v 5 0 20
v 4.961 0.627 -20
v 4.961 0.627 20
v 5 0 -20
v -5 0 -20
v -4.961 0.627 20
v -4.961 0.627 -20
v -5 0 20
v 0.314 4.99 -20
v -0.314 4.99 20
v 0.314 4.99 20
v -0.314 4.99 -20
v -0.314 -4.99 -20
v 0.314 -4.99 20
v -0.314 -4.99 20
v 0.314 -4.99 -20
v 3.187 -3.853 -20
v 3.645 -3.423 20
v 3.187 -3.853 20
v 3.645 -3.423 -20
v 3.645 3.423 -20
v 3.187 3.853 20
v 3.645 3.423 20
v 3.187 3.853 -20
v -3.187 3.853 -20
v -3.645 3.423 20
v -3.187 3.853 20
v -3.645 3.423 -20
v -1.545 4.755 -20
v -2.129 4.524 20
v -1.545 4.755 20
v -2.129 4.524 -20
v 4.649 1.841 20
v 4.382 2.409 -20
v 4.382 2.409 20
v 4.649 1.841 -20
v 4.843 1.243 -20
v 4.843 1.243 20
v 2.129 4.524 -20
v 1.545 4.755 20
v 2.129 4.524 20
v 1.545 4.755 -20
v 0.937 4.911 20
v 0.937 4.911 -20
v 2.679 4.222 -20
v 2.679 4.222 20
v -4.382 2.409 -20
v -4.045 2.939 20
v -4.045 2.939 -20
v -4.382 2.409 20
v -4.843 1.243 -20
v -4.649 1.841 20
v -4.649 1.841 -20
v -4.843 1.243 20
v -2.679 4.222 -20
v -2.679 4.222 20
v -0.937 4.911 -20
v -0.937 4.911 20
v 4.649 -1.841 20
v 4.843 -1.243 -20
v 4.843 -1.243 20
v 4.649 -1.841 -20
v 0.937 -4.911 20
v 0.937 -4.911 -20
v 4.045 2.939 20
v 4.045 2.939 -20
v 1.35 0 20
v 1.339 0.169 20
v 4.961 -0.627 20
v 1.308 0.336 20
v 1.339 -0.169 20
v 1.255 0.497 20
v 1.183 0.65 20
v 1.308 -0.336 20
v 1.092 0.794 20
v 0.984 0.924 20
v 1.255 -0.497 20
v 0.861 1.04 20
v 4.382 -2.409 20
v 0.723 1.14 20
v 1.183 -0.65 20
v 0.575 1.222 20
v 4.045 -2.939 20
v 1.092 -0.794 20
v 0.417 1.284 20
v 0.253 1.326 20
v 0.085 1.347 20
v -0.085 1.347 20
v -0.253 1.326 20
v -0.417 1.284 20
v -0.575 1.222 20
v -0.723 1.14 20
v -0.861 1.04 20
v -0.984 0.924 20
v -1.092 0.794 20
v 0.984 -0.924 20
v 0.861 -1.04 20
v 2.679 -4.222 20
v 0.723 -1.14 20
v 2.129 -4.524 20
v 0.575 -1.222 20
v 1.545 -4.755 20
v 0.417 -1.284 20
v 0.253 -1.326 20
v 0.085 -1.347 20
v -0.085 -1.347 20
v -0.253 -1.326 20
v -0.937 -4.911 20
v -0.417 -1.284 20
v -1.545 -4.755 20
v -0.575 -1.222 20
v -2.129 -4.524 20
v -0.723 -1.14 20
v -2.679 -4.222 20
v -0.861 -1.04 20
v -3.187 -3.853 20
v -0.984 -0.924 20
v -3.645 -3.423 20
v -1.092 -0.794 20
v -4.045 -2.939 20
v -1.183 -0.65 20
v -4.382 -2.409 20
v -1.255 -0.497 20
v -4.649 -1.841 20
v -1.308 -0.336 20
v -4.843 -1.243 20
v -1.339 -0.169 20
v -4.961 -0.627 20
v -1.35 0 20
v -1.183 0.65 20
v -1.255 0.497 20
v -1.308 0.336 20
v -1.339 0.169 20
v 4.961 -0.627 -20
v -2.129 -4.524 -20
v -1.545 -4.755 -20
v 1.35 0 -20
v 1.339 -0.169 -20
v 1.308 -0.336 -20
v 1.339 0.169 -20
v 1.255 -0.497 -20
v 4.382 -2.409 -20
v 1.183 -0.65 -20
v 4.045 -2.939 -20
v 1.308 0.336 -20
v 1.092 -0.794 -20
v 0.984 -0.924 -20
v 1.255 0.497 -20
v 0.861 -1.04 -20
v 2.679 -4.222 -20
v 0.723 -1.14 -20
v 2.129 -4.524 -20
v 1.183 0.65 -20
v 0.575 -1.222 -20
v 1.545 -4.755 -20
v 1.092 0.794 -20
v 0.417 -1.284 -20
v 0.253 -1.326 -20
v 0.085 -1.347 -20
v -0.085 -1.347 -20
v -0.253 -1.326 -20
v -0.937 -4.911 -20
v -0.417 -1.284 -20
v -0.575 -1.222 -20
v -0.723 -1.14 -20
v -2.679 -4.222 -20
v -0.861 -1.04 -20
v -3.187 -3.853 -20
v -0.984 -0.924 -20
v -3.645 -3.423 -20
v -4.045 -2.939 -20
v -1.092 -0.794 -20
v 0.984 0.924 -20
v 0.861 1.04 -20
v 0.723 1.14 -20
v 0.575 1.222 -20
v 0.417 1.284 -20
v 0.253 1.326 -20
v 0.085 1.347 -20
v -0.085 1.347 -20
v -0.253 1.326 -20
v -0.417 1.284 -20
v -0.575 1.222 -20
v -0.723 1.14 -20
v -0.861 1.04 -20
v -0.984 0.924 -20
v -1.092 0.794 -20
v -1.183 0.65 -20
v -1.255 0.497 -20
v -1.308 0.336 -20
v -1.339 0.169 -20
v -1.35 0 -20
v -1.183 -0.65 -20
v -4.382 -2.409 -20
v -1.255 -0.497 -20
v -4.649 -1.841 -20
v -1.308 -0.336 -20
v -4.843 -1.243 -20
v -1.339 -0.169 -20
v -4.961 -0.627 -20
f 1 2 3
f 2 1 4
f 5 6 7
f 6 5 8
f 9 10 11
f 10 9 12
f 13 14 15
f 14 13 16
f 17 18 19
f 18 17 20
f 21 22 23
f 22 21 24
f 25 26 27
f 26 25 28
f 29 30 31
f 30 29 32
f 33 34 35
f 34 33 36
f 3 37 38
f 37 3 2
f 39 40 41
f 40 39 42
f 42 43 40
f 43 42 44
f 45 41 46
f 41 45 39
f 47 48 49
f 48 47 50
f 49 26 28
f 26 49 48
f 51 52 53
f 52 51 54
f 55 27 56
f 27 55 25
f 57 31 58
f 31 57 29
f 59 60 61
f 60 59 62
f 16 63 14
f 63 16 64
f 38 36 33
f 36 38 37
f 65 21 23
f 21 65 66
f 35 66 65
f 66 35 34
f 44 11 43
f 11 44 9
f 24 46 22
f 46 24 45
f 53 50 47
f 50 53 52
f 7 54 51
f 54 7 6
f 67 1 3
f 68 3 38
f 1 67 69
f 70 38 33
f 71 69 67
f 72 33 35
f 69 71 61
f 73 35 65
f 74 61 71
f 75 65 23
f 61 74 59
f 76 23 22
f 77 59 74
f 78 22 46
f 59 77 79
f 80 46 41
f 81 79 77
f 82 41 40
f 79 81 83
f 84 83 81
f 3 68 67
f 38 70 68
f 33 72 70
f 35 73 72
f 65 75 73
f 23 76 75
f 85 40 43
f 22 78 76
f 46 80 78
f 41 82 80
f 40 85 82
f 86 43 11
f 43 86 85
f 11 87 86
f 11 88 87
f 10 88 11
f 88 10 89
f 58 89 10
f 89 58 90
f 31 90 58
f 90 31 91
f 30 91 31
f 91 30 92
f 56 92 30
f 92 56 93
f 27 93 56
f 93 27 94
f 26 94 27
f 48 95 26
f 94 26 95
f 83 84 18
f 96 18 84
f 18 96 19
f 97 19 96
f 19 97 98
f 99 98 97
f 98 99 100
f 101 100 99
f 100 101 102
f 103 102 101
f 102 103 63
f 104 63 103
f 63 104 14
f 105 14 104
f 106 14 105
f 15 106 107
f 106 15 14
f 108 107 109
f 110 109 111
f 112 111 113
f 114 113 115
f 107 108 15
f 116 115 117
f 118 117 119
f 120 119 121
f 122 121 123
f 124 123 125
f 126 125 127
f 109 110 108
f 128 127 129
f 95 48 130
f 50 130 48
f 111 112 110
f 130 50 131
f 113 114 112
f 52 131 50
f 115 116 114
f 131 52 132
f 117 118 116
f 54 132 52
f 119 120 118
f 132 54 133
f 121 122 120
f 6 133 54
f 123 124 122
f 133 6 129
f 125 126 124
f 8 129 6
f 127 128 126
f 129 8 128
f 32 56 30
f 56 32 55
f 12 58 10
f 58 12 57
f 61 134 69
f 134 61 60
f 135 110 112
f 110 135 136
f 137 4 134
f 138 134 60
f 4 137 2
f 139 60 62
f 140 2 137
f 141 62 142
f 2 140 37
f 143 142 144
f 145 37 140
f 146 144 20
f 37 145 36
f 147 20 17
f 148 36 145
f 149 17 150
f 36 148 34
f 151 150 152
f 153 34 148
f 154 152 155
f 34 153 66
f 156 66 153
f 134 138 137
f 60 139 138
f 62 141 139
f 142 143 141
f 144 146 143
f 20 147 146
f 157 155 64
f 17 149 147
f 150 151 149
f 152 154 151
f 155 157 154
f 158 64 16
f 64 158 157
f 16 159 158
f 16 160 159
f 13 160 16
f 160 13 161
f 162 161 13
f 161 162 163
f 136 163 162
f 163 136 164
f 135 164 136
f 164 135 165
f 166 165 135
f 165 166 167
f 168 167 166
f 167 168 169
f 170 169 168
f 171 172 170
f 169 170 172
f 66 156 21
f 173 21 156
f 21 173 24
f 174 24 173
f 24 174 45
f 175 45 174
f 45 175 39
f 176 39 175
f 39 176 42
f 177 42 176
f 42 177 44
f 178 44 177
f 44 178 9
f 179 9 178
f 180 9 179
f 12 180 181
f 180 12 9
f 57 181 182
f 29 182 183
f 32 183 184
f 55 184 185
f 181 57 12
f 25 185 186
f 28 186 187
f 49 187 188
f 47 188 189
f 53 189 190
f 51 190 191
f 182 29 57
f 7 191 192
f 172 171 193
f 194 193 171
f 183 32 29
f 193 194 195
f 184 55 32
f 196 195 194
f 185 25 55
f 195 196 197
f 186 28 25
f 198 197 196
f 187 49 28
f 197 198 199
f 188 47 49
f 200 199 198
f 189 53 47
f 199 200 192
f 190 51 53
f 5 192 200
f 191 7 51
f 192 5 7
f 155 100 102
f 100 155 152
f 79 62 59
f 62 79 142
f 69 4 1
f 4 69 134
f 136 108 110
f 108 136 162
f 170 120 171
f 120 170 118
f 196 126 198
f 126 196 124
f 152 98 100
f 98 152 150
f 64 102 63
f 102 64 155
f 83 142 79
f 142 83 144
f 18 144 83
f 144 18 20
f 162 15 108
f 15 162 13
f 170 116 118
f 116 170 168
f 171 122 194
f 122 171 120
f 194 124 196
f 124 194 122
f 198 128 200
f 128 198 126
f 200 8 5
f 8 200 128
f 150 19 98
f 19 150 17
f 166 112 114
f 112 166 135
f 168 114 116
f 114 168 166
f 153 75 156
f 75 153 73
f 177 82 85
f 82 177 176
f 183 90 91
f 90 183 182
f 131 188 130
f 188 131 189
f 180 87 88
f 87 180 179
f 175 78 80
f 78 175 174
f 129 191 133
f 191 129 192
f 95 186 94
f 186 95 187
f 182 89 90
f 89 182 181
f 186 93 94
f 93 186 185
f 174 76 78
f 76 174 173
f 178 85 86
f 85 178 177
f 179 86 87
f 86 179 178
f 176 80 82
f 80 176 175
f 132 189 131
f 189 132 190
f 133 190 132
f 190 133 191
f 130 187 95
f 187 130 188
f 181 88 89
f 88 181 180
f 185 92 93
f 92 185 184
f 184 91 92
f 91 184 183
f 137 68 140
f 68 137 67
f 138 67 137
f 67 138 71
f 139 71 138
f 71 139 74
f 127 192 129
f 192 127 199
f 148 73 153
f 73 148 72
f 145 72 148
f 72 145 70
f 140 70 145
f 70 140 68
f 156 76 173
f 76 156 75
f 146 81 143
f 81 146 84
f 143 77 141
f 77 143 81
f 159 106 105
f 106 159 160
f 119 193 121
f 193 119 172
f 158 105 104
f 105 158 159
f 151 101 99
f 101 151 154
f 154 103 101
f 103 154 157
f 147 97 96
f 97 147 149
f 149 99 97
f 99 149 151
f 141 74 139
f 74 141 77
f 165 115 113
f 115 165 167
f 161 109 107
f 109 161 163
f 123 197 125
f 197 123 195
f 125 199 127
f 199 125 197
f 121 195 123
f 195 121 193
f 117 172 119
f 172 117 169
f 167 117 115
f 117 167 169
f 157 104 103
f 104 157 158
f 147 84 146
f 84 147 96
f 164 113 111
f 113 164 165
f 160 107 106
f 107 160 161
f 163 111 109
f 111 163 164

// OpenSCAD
$fn = 50;


difference() {
	union() {
		translate(v = [0, 0, -20.0000000000]) {
			cylinder(h = 40, r = 5.0000000000);
		}
	}
	union() {
		translate(v = [0, 0, -100.0000000000]) {
			cylinder(h = 200, r = 1.3500000000);
		}
	}
}
